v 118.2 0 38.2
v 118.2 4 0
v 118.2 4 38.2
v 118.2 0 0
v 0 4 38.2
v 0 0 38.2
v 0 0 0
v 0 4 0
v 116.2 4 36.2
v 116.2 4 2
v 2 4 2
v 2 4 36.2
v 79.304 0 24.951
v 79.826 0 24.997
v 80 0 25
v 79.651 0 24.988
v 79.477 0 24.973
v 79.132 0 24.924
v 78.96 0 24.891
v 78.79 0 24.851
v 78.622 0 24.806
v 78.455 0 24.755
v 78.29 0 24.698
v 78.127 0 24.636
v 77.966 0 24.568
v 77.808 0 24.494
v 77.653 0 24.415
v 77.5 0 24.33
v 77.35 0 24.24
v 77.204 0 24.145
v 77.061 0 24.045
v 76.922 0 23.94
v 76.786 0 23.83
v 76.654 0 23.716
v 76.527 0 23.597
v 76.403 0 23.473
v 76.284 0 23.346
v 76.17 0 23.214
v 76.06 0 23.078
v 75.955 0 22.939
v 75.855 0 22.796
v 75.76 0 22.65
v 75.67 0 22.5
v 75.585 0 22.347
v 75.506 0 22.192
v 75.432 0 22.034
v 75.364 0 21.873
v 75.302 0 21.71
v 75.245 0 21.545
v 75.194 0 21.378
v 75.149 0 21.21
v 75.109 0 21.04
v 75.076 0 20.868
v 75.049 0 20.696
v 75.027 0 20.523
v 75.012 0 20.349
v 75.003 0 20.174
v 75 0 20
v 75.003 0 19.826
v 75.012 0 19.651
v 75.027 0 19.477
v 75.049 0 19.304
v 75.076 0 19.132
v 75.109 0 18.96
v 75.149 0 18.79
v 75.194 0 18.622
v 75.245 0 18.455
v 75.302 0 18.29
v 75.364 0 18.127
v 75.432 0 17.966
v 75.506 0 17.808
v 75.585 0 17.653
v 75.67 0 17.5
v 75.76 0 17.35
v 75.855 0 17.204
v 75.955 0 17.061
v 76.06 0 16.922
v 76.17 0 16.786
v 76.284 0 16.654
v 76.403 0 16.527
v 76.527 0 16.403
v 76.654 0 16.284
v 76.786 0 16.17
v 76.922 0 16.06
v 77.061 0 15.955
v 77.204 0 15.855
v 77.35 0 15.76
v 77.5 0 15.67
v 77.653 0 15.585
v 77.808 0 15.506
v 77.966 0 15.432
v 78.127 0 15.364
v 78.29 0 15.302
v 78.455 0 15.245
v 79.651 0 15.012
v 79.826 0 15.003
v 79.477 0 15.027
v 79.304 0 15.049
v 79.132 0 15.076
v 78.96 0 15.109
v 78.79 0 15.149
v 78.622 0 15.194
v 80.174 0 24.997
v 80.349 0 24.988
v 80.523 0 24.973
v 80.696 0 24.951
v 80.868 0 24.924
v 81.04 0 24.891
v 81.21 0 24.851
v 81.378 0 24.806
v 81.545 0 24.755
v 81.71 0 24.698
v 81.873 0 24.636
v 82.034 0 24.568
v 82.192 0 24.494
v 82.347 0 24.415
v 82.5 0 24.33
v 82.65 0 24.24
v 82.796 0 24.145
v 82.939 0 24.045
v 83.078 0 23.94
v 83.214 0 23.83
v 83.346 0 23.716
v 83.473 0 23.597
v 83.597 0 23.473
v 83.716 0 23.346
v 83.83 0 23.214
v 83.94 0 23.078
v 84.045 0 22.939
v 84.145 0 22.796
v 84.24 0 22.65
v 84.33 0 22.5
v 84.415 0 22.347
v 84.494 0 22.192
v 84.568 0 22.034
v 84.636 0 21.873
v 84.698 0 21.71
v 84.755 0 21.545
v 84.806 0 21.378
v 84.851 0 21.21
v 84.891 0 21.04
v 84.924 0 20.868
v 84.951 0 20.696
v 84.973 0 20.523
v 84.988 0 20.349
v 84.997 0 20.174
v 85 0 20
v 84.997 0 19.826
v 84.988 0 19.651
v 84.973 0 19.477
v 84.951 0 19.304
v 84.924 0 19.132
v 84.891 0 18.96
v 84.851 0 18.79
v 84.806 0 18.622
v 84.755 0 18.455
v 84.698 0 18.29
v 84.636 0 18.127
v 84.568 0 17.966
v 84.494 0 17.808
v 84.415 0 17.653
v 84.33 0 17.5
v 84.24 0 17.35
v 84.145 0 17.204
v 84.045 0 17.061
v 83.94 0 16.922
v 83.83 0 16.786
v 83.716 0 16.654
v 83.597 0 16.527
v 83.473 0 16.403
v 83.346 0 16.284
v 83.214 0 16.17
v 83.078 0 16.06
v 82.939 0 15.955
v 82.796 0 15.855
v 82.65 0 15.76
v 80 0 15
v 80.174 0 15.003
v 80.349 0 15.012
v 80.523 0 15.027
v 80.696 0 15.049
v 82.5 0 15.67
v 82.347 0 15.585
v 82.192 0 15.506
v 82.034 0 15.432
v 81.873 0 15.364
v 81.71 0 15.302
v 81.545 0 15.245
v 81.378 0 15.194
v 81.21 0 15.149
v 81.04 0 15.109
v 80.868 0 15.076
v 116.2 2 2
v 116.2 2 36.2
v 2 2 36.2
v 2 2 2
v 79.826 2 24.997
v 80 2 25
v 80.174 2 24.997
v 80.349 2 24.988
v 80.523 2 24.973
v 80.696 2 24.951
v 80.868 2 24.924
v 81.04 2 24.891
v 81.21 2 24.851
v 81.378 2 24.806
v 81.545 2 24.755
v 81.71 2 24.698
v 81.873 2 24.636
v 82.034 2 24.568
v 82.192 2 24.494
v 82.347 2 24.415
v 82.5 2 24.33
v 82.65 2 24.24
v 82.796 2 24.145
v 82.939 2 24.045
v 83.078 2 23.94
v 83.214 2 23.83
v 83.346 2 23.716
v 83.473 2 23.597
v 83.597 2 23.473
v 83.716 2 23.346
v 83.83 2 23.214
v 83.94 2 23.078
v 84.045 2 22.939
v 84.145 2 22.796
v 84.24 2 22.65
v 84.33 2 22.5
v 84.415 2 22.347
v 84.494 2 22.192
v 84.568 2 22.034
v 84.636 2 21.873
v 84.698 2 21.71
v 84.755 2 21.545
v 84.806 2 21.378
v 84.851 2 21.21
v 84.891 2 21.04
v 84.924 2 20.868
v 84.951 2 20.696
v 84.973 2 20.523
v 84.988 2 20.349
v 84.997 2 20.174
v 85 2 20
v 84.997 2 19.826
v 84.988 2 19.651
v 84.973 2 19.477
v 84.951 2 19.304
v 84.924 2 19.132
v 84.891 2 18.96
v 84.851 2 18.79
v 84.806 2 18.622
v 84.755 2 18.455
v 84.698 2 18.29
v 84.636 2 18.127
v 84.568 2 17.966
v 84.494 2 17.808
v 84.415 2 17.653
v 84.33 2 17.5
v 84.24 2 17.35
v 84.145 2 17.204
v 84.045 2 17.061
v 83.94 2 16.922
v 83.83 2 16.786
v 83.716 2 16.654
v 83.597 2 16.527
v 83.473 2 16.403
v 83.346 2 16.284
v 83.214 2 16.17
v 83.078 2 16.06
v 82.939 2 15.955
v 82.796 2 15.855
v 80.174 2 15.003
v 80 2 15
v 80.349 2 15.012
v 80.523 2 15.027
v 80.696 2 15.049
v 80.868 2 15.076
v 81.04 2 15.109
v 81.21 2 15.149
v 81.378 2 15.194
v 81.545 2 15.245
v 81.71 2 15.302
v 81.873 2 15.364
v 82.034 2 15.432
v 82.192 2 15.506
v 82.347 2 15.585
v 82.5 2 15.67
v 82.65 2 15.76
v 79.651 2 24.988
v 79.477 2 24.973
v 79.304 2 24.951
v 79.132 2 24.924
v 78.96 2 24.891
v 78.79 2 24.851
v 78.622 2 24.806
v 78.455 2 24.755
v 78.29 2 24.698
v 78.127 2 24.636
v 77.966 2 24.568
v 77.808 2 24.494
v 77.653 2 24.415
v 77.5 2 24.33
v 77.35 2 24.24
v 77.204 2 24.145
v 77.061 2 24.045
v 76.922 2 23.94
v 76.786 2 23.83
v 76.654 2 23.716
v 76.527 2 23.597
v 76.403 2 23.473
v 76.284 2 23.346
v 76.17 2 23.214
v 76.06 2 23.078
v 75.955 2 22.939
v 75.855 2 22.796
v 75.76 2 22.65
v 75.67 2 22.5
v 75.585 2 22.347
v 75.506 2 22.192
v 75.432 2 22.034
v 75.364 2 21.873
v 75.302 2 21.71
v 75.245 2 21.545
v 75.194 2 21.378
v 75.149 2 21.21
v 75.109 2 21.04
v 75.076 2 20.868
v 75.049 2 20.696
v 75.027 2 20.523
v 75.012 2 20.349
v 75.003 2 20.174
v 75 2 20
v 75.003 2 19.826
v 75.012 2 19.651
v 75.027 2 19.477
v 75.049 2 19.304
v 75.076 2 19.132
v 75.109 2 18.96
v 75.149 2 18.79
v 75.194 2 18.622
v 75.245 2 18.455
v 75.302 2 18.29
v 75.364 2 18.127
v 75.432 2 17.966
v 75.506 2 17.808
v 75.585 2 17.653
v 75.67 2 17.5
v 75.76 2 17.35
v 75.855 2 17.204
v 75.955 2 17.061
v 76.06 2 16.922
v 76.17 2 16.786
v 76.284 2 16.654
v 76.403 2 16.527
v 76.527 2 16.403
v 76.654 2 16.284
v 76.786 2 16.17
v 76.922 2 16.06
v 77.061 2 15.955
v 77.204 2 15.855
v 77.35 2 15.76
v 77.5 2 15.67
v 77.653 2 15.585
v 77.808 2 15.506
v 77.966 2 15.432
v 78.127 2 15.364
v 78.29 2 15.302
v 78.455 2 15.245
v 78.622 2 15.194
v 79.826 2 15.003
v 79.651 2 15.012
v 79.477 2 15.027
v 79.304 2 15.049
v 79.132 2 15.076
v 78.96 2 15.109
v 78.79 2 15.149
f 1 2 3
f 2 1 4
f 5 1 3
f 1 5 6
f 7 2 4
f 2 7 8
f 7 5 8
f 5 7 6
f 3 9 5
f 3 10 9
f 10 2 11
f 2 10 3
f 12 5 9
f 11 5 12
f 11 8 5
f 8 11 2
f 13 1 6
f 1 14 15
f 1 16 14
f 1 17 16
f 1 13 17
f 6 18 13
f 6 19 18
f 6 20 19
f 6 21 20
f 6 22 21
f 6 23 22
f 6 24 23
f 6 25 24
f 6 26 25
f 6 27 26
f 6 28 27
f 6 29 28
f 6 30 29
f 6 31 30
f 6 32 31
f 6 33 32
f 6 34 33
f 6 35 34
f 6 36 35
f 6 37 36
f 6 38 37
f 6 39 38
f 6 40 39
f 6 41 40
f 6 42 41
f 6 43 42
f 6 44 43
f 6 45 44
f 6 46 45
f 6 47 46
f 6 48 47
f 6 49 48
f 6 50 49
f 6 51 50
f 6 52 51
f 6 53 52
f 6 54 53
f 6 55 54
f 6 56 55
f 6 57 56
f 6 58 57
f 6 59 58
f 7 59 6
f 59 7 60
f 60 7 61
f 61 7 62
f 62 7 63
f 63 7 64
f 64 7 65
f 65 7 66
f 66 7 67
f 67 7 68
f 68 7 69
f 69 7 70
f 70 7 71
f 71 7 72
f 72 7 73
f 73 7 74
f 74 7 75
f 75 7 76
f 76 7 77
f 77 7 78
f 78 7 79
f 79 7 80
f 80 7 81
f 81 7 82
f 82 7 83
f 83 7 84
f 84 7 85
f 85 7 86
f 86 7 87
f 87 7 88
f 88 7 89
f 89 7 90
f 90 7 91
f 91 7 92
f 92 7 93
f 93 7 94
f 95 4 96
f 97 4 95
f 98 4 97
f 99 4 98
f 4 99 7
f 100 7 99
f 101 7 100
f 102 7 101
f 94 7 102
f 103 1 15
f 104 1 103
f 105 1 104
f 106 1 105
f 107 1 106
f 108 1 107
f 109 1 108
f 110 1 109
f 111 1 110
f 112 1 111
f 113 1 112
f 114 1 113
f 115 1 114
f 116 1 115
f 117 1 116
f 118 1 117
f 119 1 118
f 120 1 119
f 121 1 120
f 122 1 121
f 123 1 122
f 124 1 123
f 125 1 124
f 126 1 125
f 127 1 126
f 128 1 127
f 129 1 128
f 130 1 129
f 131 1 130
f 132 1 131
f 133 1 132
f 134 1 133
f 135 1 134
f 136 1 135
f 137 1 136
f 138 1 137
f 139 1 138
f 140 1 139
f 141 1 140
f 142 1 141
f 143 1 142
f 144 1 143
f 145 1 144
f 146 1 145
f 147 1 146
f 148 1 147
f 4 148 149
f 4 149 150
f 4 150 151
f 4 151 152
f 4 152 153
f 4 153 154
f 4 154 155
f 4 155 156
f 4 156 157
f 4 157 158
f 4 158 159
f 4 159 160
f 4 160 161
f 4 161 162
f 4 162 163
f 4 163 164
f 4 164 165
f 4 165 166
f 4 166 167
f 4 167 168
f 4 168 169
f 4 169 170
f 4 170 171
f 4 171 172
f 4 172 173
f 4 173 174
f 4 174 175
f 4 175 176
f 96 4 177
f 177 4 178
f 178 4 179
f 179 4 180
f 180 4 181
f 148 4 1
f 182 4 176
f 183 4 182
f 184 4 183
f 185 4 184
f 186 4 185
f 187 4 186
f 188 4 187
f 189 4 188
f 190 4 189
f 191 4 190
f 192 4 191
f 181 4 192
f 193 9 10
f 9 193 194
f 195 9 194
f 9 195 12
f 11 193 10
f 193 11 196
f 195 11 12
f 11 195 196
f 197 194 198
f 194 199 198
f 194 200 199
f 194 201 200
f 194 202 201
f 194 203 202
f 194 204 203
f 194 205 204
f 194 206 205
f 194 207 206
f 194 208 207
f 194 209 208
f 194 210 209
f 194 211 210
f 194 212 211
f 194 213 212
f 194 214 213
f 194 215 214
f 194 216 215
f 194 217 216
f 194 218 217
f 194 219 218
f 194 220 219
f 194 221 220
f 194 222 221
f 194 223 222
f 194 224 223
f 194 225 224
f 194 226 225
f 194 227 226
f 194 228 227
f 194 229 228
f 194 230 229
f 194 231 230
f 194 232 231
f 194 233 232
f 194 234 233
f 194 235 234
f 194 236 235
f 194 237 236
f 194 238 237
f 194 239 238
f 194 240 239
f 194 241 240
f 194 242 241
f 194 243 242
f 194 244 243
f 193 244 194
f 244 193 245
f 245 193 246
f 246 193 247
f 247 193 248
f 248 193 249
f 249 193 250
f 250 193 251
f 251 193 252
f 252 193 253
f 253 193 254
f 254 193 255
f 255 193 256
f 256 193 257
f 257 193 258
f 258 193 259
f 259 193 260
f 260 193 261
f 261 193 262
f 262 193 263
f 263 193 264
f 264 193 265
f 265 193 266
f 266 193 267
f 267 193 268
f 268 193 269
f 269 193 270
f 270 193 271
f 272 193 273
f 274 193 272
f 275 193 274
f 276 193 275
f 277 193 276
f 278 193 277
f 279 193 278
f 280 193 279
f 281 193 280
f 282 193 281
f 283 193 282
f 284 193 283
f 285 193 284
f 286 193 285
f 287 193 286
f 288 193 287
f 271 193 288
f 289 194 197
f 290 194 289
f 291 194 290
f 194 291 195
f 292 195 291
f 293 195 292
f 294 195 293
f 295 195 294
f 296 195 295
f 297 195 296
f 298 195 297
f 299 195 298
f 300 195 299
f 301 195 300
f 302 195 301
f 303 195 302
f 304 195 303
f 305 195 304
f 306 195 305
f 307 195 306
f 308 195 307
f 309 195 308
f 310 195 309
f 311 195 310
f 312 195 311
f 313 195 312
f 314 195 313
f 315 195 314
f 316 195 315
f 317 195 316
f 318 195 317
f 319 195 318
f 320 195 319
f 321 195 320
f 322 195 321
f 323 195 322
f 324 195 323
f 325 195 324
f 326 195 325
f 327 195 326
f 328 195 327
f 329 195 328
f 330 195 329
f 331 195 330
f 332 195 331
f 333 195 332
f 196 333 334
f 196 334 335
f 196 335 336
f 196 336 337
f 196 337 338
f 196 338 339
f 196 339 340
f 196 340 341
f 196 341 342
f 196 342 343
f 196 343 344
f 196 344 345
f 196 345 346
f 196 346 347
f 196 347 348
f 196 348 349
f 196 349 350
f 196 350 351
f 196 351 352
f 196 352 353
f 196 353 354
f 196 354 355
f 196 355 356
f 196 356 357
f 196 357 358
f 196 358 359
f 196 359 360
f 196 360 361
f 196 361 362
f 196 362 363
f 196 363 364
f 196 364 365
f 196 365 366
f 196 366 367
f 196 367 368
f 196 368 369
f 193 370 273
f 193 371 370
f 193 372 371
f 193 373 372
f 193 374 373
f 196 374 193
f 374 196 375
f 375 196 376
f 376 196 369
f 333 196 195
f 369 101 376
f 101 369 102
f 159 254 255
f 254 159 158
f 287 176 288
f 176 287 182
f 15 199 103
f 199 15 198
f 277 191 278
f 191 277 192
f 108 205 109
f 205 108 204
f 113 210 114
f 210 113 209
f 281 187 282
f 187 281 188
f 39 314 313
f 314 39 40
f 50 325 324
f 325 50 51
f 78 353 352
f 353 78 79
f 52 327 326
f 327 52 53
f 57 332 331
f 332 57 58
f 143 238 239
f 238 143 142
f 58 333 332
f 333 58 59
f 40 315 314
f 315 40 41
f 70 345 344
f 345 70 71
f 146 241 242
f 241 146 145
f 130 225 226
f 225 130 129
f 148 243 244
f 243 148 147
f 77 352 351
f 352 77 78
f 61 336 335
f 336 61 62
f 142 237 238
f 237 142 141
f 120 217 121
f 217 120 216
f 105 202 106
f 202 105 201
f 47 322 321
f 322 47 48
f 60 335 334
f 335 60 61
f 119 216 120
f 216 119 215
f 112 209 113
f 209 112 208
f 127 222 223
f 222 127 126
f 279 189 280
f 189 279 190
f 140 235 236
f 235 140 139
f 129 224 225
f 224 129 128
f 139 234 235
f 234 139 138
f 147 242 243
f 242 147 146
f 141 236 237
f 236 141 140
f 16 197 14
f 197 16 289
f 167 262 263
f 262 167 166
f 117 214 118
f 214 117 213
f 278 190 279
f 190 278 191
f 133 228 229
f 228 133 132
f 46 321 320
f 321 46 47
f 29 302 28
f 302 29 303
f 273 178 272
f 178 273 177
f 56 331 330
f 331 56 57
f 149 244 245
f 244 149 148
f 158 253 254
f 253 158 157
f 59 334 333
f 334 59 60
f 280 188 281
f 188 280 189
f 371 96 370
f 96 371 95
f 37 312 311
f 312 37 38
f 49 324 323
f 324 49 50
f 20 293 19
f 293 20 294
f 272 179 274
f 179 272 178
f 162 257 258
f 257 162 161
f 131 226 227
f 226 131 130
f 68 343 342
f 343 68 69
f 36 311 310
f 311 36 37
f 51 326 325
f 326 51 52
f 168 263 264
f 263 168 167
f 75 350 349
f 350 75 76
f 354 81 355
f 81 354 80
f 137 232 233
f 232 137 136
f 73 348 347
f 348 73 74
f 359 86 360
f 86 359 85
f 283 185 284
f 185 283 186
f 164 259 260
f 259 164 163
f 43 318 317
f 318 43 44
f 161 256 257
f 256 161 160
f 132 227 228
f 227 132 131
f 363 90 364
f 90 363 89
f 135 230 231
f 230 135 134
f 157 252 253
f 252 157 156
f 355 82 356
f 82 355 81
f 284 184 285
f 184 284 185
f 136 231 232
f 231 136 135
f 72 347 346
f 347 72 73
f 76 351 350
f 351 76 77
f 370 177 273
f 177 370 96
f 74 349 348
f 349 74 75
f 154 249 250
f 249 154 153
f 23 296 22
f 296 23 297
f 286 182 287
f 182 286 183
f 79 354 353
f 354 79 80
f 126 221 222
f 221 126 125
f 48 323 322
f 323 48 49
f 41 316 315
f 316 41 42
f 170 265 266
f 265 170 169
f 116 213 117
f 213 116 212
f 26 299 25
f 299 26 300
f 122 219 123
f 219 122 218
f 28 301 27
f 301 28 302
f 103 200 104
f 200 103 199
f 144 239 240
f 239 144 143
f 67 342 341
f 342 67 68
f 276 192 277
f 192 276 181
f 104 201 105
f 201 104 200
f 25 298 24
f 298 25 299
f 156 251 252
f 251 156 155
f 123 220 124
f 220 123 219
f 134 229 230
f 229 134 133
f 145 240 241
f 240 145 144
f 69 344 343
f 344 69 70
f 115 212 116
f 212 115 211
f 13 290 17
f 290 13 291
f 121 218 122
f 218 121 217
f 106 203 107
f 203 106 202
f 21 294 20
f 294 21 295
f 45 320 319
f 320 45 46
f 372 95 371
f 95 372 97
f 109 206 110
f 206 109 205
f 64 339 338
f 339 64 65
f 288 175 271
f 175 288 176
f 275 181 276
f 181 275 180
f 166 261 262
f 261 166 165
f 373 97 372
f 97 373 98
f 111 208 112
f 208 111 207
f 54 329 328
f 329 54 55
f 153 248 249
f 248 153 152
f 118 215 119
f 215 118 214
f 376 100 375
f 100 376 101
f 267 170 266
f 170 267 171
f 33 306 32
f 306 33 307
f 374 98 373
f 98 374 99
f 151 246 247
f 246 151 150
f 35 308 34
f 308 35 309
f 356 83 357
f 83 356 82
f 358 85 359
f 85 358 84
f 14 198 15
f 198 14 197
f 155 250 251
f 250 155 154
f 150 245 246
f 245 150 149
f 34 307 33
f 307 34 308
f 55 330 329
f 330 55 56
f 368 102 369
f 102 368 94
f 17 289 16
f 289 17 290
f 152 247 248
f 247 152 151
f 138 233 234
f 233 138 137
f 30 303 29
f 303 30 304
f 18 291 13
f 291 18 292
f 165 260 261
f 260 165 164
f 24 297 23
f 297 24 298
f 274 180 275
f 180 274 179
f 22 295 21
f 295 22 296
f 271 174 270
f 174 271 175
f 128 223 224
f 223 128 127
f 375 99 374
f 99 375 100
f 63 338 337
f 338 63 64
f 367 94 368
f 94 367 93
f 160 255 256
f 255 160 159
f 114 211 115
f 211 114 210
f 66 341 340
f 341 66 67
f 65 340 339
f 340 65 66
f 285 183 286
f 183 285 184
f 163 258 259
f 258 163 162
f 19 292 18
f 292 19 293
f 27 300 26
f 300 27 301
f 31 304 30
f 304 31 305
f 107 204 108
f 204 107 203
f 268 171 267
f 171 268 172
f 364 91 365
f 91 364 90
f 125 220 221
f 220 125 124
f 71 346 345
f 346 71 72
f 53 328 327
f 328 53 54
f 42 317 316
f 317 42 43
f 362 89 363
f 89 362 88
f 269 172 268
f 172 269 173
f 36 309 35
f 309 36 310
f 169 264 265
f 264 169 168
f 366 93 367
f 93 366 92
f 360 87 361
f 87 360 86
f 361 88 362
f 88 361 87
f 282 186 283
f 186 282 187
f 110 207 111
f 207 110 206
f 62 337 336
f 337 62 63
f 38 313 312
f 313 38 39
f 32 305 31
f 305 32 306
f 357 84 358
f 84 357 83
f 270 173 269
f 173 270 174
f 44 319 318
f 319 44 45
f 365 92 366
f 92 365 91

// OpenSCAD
$fn=180;

difference() {
cube([118.2,4,38.2]);

translate([2,2,2])
    cube([114.2,4,34.2]);
    
    translate([80,5,20])
    rotate([90,0,0])
        cylinder(10,5,5);

}
